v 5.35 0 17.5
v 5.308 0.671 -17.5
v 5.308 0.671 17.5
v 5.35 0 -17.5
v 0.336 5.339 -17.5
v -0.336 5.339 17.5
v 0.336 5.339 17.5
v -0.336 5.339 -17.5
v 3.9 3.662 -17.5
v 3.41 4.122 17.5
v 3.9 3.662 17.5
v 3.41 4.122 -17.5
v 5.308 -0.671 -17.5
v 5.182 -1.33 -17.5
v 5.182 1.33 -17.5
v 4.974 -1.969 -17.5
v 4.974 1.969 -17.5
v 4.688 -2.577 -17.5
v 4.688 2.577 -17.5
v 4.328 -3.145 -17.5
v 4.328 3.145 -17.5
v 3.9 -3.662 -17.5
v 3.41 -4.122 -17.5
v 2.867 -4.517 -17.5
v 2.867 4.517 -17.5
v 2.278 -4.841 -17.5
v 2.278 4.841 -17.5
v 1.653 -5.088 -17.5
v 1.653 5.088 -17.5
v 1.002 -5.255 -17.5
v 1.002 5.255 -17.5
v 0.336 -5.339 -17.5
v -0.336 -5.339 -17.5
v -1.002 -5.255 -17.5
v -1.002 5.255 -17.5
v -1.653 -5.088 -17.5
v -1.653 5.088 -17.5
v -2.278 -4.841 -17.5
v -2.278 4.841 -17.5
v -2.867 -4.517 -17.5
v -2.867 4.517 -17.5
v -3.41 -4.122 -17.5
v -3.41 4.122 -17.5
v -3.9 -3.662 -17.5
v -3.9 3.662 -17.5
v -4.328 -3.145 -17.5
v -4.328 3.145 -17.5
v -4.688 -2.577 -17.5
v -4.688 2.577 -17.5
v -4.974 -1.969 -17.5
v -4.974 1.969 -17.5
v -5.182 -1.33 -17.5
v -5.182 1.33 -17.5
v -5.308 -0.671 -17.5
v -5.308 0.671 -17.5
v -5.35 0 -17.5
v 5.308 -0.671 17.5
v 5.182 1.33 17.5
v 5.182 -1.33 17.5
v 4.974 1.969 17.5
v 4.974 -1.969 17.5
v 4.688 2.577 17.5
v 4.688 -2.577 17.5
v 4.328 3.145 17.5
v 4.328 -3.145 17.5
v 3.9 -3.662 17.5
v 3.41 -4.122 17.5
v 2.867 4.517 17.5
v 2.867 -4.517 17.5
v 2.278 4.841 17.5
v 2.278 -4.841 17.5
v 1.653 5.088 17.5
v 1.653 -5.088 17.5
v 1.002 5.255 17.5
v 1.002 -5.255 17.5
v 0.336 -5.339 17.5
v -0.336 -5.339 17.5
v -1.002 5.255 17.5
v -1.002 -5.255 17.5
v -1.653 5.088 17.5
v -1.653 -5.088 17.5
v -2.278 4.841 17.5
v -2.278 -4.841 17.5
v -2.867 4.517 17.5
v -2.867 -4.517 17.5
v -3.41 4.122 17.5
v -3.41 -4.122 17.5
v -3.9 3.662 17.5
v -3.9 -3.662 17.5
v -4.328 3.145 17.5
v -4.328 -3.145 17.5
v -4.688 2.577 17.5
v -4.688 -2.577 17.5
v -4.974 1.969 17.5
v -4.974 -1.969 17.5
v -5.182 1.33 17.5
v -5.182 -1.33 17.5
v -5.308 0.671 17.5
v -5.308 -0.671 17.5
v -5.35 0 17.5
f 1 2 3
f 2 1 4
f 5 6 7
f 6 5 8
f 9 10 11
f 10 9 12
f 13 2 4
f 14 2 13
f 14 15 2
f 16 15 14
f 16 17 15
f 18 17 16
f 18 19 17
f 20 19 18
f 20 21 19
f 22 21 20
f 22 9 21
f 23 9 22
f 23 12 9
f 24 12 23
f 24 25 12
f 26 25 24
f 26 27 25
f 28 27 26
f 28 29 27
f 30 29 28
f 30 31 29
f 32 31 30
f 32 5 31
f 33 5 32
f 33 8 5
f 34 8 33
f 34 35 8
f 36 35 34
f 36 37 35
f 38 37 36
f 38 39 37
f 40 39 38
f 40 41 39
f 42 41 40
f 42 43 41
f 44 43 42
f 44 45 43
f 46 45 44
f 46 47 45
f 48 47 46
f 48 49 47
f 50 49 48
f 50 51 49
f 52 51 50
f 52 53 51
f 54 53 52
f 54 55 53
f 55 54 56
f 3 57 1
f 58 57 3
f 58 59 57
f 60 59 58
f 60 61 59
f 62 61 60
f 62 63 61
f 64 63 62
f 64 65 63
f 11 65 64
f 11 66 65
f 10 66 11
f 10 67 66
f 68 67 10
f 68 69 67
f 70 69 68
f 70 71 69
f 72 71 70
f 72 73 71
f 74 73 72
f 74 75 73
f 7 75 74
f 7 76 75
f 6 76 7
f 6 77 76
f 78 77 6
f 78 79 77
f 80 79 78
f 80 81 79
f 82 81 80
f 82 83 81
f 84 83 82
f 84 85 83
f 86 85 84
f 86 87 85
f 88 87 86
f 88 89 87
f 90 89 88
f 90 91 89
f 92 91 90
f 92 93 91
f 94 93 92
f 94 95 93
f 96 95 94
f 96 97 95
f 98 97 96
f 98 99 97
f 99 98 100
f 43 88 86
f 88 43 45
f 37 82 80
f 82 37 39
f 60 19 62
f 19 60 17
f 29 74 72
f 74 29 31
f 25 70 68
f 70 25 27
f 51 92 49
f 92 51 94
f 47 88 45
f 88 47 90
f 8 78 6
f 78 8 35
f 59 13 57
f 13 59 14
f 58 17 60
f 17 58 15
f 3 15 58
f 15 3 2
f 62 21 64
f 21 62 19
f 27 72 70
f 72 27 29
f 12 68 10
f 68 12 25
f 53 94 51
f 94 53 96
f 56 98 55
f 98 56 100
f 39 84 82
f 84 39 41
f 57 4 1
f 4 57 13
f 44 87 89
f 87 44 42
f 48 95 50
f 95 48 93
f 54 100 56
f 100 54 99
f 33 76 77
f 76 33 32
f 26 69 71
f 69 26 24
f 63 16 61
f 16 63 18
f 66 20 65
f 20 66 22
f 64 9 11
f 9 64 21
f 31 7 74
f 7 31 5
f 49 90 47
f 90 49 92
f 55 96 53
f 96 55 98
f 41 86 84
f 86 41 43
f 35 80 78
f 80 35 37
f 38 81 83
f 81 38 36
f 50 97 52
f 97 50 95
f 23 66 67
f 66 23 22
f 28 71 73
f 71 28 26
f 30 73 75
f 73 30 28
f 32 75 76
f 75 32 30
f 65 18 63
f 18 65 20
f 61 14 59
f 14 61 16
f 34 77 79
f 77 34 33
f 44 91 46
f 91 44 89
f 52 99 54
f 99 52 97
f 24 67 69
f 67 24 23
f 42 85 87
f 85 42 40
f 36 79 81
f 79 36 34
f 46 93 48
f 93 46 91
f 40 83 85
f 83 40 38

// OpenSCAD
$fn = 50;


difference() {
	union() {
		translate(v = [0, 0, -17.5000000000]) {
			cylinder(h = 35, r = 5.3500000000);
		}
	}
	union() {
		translate(v = [0, 0, -100.0000000000]) {
			cylinder(h = 200, r = 0);
		}
	}
}
